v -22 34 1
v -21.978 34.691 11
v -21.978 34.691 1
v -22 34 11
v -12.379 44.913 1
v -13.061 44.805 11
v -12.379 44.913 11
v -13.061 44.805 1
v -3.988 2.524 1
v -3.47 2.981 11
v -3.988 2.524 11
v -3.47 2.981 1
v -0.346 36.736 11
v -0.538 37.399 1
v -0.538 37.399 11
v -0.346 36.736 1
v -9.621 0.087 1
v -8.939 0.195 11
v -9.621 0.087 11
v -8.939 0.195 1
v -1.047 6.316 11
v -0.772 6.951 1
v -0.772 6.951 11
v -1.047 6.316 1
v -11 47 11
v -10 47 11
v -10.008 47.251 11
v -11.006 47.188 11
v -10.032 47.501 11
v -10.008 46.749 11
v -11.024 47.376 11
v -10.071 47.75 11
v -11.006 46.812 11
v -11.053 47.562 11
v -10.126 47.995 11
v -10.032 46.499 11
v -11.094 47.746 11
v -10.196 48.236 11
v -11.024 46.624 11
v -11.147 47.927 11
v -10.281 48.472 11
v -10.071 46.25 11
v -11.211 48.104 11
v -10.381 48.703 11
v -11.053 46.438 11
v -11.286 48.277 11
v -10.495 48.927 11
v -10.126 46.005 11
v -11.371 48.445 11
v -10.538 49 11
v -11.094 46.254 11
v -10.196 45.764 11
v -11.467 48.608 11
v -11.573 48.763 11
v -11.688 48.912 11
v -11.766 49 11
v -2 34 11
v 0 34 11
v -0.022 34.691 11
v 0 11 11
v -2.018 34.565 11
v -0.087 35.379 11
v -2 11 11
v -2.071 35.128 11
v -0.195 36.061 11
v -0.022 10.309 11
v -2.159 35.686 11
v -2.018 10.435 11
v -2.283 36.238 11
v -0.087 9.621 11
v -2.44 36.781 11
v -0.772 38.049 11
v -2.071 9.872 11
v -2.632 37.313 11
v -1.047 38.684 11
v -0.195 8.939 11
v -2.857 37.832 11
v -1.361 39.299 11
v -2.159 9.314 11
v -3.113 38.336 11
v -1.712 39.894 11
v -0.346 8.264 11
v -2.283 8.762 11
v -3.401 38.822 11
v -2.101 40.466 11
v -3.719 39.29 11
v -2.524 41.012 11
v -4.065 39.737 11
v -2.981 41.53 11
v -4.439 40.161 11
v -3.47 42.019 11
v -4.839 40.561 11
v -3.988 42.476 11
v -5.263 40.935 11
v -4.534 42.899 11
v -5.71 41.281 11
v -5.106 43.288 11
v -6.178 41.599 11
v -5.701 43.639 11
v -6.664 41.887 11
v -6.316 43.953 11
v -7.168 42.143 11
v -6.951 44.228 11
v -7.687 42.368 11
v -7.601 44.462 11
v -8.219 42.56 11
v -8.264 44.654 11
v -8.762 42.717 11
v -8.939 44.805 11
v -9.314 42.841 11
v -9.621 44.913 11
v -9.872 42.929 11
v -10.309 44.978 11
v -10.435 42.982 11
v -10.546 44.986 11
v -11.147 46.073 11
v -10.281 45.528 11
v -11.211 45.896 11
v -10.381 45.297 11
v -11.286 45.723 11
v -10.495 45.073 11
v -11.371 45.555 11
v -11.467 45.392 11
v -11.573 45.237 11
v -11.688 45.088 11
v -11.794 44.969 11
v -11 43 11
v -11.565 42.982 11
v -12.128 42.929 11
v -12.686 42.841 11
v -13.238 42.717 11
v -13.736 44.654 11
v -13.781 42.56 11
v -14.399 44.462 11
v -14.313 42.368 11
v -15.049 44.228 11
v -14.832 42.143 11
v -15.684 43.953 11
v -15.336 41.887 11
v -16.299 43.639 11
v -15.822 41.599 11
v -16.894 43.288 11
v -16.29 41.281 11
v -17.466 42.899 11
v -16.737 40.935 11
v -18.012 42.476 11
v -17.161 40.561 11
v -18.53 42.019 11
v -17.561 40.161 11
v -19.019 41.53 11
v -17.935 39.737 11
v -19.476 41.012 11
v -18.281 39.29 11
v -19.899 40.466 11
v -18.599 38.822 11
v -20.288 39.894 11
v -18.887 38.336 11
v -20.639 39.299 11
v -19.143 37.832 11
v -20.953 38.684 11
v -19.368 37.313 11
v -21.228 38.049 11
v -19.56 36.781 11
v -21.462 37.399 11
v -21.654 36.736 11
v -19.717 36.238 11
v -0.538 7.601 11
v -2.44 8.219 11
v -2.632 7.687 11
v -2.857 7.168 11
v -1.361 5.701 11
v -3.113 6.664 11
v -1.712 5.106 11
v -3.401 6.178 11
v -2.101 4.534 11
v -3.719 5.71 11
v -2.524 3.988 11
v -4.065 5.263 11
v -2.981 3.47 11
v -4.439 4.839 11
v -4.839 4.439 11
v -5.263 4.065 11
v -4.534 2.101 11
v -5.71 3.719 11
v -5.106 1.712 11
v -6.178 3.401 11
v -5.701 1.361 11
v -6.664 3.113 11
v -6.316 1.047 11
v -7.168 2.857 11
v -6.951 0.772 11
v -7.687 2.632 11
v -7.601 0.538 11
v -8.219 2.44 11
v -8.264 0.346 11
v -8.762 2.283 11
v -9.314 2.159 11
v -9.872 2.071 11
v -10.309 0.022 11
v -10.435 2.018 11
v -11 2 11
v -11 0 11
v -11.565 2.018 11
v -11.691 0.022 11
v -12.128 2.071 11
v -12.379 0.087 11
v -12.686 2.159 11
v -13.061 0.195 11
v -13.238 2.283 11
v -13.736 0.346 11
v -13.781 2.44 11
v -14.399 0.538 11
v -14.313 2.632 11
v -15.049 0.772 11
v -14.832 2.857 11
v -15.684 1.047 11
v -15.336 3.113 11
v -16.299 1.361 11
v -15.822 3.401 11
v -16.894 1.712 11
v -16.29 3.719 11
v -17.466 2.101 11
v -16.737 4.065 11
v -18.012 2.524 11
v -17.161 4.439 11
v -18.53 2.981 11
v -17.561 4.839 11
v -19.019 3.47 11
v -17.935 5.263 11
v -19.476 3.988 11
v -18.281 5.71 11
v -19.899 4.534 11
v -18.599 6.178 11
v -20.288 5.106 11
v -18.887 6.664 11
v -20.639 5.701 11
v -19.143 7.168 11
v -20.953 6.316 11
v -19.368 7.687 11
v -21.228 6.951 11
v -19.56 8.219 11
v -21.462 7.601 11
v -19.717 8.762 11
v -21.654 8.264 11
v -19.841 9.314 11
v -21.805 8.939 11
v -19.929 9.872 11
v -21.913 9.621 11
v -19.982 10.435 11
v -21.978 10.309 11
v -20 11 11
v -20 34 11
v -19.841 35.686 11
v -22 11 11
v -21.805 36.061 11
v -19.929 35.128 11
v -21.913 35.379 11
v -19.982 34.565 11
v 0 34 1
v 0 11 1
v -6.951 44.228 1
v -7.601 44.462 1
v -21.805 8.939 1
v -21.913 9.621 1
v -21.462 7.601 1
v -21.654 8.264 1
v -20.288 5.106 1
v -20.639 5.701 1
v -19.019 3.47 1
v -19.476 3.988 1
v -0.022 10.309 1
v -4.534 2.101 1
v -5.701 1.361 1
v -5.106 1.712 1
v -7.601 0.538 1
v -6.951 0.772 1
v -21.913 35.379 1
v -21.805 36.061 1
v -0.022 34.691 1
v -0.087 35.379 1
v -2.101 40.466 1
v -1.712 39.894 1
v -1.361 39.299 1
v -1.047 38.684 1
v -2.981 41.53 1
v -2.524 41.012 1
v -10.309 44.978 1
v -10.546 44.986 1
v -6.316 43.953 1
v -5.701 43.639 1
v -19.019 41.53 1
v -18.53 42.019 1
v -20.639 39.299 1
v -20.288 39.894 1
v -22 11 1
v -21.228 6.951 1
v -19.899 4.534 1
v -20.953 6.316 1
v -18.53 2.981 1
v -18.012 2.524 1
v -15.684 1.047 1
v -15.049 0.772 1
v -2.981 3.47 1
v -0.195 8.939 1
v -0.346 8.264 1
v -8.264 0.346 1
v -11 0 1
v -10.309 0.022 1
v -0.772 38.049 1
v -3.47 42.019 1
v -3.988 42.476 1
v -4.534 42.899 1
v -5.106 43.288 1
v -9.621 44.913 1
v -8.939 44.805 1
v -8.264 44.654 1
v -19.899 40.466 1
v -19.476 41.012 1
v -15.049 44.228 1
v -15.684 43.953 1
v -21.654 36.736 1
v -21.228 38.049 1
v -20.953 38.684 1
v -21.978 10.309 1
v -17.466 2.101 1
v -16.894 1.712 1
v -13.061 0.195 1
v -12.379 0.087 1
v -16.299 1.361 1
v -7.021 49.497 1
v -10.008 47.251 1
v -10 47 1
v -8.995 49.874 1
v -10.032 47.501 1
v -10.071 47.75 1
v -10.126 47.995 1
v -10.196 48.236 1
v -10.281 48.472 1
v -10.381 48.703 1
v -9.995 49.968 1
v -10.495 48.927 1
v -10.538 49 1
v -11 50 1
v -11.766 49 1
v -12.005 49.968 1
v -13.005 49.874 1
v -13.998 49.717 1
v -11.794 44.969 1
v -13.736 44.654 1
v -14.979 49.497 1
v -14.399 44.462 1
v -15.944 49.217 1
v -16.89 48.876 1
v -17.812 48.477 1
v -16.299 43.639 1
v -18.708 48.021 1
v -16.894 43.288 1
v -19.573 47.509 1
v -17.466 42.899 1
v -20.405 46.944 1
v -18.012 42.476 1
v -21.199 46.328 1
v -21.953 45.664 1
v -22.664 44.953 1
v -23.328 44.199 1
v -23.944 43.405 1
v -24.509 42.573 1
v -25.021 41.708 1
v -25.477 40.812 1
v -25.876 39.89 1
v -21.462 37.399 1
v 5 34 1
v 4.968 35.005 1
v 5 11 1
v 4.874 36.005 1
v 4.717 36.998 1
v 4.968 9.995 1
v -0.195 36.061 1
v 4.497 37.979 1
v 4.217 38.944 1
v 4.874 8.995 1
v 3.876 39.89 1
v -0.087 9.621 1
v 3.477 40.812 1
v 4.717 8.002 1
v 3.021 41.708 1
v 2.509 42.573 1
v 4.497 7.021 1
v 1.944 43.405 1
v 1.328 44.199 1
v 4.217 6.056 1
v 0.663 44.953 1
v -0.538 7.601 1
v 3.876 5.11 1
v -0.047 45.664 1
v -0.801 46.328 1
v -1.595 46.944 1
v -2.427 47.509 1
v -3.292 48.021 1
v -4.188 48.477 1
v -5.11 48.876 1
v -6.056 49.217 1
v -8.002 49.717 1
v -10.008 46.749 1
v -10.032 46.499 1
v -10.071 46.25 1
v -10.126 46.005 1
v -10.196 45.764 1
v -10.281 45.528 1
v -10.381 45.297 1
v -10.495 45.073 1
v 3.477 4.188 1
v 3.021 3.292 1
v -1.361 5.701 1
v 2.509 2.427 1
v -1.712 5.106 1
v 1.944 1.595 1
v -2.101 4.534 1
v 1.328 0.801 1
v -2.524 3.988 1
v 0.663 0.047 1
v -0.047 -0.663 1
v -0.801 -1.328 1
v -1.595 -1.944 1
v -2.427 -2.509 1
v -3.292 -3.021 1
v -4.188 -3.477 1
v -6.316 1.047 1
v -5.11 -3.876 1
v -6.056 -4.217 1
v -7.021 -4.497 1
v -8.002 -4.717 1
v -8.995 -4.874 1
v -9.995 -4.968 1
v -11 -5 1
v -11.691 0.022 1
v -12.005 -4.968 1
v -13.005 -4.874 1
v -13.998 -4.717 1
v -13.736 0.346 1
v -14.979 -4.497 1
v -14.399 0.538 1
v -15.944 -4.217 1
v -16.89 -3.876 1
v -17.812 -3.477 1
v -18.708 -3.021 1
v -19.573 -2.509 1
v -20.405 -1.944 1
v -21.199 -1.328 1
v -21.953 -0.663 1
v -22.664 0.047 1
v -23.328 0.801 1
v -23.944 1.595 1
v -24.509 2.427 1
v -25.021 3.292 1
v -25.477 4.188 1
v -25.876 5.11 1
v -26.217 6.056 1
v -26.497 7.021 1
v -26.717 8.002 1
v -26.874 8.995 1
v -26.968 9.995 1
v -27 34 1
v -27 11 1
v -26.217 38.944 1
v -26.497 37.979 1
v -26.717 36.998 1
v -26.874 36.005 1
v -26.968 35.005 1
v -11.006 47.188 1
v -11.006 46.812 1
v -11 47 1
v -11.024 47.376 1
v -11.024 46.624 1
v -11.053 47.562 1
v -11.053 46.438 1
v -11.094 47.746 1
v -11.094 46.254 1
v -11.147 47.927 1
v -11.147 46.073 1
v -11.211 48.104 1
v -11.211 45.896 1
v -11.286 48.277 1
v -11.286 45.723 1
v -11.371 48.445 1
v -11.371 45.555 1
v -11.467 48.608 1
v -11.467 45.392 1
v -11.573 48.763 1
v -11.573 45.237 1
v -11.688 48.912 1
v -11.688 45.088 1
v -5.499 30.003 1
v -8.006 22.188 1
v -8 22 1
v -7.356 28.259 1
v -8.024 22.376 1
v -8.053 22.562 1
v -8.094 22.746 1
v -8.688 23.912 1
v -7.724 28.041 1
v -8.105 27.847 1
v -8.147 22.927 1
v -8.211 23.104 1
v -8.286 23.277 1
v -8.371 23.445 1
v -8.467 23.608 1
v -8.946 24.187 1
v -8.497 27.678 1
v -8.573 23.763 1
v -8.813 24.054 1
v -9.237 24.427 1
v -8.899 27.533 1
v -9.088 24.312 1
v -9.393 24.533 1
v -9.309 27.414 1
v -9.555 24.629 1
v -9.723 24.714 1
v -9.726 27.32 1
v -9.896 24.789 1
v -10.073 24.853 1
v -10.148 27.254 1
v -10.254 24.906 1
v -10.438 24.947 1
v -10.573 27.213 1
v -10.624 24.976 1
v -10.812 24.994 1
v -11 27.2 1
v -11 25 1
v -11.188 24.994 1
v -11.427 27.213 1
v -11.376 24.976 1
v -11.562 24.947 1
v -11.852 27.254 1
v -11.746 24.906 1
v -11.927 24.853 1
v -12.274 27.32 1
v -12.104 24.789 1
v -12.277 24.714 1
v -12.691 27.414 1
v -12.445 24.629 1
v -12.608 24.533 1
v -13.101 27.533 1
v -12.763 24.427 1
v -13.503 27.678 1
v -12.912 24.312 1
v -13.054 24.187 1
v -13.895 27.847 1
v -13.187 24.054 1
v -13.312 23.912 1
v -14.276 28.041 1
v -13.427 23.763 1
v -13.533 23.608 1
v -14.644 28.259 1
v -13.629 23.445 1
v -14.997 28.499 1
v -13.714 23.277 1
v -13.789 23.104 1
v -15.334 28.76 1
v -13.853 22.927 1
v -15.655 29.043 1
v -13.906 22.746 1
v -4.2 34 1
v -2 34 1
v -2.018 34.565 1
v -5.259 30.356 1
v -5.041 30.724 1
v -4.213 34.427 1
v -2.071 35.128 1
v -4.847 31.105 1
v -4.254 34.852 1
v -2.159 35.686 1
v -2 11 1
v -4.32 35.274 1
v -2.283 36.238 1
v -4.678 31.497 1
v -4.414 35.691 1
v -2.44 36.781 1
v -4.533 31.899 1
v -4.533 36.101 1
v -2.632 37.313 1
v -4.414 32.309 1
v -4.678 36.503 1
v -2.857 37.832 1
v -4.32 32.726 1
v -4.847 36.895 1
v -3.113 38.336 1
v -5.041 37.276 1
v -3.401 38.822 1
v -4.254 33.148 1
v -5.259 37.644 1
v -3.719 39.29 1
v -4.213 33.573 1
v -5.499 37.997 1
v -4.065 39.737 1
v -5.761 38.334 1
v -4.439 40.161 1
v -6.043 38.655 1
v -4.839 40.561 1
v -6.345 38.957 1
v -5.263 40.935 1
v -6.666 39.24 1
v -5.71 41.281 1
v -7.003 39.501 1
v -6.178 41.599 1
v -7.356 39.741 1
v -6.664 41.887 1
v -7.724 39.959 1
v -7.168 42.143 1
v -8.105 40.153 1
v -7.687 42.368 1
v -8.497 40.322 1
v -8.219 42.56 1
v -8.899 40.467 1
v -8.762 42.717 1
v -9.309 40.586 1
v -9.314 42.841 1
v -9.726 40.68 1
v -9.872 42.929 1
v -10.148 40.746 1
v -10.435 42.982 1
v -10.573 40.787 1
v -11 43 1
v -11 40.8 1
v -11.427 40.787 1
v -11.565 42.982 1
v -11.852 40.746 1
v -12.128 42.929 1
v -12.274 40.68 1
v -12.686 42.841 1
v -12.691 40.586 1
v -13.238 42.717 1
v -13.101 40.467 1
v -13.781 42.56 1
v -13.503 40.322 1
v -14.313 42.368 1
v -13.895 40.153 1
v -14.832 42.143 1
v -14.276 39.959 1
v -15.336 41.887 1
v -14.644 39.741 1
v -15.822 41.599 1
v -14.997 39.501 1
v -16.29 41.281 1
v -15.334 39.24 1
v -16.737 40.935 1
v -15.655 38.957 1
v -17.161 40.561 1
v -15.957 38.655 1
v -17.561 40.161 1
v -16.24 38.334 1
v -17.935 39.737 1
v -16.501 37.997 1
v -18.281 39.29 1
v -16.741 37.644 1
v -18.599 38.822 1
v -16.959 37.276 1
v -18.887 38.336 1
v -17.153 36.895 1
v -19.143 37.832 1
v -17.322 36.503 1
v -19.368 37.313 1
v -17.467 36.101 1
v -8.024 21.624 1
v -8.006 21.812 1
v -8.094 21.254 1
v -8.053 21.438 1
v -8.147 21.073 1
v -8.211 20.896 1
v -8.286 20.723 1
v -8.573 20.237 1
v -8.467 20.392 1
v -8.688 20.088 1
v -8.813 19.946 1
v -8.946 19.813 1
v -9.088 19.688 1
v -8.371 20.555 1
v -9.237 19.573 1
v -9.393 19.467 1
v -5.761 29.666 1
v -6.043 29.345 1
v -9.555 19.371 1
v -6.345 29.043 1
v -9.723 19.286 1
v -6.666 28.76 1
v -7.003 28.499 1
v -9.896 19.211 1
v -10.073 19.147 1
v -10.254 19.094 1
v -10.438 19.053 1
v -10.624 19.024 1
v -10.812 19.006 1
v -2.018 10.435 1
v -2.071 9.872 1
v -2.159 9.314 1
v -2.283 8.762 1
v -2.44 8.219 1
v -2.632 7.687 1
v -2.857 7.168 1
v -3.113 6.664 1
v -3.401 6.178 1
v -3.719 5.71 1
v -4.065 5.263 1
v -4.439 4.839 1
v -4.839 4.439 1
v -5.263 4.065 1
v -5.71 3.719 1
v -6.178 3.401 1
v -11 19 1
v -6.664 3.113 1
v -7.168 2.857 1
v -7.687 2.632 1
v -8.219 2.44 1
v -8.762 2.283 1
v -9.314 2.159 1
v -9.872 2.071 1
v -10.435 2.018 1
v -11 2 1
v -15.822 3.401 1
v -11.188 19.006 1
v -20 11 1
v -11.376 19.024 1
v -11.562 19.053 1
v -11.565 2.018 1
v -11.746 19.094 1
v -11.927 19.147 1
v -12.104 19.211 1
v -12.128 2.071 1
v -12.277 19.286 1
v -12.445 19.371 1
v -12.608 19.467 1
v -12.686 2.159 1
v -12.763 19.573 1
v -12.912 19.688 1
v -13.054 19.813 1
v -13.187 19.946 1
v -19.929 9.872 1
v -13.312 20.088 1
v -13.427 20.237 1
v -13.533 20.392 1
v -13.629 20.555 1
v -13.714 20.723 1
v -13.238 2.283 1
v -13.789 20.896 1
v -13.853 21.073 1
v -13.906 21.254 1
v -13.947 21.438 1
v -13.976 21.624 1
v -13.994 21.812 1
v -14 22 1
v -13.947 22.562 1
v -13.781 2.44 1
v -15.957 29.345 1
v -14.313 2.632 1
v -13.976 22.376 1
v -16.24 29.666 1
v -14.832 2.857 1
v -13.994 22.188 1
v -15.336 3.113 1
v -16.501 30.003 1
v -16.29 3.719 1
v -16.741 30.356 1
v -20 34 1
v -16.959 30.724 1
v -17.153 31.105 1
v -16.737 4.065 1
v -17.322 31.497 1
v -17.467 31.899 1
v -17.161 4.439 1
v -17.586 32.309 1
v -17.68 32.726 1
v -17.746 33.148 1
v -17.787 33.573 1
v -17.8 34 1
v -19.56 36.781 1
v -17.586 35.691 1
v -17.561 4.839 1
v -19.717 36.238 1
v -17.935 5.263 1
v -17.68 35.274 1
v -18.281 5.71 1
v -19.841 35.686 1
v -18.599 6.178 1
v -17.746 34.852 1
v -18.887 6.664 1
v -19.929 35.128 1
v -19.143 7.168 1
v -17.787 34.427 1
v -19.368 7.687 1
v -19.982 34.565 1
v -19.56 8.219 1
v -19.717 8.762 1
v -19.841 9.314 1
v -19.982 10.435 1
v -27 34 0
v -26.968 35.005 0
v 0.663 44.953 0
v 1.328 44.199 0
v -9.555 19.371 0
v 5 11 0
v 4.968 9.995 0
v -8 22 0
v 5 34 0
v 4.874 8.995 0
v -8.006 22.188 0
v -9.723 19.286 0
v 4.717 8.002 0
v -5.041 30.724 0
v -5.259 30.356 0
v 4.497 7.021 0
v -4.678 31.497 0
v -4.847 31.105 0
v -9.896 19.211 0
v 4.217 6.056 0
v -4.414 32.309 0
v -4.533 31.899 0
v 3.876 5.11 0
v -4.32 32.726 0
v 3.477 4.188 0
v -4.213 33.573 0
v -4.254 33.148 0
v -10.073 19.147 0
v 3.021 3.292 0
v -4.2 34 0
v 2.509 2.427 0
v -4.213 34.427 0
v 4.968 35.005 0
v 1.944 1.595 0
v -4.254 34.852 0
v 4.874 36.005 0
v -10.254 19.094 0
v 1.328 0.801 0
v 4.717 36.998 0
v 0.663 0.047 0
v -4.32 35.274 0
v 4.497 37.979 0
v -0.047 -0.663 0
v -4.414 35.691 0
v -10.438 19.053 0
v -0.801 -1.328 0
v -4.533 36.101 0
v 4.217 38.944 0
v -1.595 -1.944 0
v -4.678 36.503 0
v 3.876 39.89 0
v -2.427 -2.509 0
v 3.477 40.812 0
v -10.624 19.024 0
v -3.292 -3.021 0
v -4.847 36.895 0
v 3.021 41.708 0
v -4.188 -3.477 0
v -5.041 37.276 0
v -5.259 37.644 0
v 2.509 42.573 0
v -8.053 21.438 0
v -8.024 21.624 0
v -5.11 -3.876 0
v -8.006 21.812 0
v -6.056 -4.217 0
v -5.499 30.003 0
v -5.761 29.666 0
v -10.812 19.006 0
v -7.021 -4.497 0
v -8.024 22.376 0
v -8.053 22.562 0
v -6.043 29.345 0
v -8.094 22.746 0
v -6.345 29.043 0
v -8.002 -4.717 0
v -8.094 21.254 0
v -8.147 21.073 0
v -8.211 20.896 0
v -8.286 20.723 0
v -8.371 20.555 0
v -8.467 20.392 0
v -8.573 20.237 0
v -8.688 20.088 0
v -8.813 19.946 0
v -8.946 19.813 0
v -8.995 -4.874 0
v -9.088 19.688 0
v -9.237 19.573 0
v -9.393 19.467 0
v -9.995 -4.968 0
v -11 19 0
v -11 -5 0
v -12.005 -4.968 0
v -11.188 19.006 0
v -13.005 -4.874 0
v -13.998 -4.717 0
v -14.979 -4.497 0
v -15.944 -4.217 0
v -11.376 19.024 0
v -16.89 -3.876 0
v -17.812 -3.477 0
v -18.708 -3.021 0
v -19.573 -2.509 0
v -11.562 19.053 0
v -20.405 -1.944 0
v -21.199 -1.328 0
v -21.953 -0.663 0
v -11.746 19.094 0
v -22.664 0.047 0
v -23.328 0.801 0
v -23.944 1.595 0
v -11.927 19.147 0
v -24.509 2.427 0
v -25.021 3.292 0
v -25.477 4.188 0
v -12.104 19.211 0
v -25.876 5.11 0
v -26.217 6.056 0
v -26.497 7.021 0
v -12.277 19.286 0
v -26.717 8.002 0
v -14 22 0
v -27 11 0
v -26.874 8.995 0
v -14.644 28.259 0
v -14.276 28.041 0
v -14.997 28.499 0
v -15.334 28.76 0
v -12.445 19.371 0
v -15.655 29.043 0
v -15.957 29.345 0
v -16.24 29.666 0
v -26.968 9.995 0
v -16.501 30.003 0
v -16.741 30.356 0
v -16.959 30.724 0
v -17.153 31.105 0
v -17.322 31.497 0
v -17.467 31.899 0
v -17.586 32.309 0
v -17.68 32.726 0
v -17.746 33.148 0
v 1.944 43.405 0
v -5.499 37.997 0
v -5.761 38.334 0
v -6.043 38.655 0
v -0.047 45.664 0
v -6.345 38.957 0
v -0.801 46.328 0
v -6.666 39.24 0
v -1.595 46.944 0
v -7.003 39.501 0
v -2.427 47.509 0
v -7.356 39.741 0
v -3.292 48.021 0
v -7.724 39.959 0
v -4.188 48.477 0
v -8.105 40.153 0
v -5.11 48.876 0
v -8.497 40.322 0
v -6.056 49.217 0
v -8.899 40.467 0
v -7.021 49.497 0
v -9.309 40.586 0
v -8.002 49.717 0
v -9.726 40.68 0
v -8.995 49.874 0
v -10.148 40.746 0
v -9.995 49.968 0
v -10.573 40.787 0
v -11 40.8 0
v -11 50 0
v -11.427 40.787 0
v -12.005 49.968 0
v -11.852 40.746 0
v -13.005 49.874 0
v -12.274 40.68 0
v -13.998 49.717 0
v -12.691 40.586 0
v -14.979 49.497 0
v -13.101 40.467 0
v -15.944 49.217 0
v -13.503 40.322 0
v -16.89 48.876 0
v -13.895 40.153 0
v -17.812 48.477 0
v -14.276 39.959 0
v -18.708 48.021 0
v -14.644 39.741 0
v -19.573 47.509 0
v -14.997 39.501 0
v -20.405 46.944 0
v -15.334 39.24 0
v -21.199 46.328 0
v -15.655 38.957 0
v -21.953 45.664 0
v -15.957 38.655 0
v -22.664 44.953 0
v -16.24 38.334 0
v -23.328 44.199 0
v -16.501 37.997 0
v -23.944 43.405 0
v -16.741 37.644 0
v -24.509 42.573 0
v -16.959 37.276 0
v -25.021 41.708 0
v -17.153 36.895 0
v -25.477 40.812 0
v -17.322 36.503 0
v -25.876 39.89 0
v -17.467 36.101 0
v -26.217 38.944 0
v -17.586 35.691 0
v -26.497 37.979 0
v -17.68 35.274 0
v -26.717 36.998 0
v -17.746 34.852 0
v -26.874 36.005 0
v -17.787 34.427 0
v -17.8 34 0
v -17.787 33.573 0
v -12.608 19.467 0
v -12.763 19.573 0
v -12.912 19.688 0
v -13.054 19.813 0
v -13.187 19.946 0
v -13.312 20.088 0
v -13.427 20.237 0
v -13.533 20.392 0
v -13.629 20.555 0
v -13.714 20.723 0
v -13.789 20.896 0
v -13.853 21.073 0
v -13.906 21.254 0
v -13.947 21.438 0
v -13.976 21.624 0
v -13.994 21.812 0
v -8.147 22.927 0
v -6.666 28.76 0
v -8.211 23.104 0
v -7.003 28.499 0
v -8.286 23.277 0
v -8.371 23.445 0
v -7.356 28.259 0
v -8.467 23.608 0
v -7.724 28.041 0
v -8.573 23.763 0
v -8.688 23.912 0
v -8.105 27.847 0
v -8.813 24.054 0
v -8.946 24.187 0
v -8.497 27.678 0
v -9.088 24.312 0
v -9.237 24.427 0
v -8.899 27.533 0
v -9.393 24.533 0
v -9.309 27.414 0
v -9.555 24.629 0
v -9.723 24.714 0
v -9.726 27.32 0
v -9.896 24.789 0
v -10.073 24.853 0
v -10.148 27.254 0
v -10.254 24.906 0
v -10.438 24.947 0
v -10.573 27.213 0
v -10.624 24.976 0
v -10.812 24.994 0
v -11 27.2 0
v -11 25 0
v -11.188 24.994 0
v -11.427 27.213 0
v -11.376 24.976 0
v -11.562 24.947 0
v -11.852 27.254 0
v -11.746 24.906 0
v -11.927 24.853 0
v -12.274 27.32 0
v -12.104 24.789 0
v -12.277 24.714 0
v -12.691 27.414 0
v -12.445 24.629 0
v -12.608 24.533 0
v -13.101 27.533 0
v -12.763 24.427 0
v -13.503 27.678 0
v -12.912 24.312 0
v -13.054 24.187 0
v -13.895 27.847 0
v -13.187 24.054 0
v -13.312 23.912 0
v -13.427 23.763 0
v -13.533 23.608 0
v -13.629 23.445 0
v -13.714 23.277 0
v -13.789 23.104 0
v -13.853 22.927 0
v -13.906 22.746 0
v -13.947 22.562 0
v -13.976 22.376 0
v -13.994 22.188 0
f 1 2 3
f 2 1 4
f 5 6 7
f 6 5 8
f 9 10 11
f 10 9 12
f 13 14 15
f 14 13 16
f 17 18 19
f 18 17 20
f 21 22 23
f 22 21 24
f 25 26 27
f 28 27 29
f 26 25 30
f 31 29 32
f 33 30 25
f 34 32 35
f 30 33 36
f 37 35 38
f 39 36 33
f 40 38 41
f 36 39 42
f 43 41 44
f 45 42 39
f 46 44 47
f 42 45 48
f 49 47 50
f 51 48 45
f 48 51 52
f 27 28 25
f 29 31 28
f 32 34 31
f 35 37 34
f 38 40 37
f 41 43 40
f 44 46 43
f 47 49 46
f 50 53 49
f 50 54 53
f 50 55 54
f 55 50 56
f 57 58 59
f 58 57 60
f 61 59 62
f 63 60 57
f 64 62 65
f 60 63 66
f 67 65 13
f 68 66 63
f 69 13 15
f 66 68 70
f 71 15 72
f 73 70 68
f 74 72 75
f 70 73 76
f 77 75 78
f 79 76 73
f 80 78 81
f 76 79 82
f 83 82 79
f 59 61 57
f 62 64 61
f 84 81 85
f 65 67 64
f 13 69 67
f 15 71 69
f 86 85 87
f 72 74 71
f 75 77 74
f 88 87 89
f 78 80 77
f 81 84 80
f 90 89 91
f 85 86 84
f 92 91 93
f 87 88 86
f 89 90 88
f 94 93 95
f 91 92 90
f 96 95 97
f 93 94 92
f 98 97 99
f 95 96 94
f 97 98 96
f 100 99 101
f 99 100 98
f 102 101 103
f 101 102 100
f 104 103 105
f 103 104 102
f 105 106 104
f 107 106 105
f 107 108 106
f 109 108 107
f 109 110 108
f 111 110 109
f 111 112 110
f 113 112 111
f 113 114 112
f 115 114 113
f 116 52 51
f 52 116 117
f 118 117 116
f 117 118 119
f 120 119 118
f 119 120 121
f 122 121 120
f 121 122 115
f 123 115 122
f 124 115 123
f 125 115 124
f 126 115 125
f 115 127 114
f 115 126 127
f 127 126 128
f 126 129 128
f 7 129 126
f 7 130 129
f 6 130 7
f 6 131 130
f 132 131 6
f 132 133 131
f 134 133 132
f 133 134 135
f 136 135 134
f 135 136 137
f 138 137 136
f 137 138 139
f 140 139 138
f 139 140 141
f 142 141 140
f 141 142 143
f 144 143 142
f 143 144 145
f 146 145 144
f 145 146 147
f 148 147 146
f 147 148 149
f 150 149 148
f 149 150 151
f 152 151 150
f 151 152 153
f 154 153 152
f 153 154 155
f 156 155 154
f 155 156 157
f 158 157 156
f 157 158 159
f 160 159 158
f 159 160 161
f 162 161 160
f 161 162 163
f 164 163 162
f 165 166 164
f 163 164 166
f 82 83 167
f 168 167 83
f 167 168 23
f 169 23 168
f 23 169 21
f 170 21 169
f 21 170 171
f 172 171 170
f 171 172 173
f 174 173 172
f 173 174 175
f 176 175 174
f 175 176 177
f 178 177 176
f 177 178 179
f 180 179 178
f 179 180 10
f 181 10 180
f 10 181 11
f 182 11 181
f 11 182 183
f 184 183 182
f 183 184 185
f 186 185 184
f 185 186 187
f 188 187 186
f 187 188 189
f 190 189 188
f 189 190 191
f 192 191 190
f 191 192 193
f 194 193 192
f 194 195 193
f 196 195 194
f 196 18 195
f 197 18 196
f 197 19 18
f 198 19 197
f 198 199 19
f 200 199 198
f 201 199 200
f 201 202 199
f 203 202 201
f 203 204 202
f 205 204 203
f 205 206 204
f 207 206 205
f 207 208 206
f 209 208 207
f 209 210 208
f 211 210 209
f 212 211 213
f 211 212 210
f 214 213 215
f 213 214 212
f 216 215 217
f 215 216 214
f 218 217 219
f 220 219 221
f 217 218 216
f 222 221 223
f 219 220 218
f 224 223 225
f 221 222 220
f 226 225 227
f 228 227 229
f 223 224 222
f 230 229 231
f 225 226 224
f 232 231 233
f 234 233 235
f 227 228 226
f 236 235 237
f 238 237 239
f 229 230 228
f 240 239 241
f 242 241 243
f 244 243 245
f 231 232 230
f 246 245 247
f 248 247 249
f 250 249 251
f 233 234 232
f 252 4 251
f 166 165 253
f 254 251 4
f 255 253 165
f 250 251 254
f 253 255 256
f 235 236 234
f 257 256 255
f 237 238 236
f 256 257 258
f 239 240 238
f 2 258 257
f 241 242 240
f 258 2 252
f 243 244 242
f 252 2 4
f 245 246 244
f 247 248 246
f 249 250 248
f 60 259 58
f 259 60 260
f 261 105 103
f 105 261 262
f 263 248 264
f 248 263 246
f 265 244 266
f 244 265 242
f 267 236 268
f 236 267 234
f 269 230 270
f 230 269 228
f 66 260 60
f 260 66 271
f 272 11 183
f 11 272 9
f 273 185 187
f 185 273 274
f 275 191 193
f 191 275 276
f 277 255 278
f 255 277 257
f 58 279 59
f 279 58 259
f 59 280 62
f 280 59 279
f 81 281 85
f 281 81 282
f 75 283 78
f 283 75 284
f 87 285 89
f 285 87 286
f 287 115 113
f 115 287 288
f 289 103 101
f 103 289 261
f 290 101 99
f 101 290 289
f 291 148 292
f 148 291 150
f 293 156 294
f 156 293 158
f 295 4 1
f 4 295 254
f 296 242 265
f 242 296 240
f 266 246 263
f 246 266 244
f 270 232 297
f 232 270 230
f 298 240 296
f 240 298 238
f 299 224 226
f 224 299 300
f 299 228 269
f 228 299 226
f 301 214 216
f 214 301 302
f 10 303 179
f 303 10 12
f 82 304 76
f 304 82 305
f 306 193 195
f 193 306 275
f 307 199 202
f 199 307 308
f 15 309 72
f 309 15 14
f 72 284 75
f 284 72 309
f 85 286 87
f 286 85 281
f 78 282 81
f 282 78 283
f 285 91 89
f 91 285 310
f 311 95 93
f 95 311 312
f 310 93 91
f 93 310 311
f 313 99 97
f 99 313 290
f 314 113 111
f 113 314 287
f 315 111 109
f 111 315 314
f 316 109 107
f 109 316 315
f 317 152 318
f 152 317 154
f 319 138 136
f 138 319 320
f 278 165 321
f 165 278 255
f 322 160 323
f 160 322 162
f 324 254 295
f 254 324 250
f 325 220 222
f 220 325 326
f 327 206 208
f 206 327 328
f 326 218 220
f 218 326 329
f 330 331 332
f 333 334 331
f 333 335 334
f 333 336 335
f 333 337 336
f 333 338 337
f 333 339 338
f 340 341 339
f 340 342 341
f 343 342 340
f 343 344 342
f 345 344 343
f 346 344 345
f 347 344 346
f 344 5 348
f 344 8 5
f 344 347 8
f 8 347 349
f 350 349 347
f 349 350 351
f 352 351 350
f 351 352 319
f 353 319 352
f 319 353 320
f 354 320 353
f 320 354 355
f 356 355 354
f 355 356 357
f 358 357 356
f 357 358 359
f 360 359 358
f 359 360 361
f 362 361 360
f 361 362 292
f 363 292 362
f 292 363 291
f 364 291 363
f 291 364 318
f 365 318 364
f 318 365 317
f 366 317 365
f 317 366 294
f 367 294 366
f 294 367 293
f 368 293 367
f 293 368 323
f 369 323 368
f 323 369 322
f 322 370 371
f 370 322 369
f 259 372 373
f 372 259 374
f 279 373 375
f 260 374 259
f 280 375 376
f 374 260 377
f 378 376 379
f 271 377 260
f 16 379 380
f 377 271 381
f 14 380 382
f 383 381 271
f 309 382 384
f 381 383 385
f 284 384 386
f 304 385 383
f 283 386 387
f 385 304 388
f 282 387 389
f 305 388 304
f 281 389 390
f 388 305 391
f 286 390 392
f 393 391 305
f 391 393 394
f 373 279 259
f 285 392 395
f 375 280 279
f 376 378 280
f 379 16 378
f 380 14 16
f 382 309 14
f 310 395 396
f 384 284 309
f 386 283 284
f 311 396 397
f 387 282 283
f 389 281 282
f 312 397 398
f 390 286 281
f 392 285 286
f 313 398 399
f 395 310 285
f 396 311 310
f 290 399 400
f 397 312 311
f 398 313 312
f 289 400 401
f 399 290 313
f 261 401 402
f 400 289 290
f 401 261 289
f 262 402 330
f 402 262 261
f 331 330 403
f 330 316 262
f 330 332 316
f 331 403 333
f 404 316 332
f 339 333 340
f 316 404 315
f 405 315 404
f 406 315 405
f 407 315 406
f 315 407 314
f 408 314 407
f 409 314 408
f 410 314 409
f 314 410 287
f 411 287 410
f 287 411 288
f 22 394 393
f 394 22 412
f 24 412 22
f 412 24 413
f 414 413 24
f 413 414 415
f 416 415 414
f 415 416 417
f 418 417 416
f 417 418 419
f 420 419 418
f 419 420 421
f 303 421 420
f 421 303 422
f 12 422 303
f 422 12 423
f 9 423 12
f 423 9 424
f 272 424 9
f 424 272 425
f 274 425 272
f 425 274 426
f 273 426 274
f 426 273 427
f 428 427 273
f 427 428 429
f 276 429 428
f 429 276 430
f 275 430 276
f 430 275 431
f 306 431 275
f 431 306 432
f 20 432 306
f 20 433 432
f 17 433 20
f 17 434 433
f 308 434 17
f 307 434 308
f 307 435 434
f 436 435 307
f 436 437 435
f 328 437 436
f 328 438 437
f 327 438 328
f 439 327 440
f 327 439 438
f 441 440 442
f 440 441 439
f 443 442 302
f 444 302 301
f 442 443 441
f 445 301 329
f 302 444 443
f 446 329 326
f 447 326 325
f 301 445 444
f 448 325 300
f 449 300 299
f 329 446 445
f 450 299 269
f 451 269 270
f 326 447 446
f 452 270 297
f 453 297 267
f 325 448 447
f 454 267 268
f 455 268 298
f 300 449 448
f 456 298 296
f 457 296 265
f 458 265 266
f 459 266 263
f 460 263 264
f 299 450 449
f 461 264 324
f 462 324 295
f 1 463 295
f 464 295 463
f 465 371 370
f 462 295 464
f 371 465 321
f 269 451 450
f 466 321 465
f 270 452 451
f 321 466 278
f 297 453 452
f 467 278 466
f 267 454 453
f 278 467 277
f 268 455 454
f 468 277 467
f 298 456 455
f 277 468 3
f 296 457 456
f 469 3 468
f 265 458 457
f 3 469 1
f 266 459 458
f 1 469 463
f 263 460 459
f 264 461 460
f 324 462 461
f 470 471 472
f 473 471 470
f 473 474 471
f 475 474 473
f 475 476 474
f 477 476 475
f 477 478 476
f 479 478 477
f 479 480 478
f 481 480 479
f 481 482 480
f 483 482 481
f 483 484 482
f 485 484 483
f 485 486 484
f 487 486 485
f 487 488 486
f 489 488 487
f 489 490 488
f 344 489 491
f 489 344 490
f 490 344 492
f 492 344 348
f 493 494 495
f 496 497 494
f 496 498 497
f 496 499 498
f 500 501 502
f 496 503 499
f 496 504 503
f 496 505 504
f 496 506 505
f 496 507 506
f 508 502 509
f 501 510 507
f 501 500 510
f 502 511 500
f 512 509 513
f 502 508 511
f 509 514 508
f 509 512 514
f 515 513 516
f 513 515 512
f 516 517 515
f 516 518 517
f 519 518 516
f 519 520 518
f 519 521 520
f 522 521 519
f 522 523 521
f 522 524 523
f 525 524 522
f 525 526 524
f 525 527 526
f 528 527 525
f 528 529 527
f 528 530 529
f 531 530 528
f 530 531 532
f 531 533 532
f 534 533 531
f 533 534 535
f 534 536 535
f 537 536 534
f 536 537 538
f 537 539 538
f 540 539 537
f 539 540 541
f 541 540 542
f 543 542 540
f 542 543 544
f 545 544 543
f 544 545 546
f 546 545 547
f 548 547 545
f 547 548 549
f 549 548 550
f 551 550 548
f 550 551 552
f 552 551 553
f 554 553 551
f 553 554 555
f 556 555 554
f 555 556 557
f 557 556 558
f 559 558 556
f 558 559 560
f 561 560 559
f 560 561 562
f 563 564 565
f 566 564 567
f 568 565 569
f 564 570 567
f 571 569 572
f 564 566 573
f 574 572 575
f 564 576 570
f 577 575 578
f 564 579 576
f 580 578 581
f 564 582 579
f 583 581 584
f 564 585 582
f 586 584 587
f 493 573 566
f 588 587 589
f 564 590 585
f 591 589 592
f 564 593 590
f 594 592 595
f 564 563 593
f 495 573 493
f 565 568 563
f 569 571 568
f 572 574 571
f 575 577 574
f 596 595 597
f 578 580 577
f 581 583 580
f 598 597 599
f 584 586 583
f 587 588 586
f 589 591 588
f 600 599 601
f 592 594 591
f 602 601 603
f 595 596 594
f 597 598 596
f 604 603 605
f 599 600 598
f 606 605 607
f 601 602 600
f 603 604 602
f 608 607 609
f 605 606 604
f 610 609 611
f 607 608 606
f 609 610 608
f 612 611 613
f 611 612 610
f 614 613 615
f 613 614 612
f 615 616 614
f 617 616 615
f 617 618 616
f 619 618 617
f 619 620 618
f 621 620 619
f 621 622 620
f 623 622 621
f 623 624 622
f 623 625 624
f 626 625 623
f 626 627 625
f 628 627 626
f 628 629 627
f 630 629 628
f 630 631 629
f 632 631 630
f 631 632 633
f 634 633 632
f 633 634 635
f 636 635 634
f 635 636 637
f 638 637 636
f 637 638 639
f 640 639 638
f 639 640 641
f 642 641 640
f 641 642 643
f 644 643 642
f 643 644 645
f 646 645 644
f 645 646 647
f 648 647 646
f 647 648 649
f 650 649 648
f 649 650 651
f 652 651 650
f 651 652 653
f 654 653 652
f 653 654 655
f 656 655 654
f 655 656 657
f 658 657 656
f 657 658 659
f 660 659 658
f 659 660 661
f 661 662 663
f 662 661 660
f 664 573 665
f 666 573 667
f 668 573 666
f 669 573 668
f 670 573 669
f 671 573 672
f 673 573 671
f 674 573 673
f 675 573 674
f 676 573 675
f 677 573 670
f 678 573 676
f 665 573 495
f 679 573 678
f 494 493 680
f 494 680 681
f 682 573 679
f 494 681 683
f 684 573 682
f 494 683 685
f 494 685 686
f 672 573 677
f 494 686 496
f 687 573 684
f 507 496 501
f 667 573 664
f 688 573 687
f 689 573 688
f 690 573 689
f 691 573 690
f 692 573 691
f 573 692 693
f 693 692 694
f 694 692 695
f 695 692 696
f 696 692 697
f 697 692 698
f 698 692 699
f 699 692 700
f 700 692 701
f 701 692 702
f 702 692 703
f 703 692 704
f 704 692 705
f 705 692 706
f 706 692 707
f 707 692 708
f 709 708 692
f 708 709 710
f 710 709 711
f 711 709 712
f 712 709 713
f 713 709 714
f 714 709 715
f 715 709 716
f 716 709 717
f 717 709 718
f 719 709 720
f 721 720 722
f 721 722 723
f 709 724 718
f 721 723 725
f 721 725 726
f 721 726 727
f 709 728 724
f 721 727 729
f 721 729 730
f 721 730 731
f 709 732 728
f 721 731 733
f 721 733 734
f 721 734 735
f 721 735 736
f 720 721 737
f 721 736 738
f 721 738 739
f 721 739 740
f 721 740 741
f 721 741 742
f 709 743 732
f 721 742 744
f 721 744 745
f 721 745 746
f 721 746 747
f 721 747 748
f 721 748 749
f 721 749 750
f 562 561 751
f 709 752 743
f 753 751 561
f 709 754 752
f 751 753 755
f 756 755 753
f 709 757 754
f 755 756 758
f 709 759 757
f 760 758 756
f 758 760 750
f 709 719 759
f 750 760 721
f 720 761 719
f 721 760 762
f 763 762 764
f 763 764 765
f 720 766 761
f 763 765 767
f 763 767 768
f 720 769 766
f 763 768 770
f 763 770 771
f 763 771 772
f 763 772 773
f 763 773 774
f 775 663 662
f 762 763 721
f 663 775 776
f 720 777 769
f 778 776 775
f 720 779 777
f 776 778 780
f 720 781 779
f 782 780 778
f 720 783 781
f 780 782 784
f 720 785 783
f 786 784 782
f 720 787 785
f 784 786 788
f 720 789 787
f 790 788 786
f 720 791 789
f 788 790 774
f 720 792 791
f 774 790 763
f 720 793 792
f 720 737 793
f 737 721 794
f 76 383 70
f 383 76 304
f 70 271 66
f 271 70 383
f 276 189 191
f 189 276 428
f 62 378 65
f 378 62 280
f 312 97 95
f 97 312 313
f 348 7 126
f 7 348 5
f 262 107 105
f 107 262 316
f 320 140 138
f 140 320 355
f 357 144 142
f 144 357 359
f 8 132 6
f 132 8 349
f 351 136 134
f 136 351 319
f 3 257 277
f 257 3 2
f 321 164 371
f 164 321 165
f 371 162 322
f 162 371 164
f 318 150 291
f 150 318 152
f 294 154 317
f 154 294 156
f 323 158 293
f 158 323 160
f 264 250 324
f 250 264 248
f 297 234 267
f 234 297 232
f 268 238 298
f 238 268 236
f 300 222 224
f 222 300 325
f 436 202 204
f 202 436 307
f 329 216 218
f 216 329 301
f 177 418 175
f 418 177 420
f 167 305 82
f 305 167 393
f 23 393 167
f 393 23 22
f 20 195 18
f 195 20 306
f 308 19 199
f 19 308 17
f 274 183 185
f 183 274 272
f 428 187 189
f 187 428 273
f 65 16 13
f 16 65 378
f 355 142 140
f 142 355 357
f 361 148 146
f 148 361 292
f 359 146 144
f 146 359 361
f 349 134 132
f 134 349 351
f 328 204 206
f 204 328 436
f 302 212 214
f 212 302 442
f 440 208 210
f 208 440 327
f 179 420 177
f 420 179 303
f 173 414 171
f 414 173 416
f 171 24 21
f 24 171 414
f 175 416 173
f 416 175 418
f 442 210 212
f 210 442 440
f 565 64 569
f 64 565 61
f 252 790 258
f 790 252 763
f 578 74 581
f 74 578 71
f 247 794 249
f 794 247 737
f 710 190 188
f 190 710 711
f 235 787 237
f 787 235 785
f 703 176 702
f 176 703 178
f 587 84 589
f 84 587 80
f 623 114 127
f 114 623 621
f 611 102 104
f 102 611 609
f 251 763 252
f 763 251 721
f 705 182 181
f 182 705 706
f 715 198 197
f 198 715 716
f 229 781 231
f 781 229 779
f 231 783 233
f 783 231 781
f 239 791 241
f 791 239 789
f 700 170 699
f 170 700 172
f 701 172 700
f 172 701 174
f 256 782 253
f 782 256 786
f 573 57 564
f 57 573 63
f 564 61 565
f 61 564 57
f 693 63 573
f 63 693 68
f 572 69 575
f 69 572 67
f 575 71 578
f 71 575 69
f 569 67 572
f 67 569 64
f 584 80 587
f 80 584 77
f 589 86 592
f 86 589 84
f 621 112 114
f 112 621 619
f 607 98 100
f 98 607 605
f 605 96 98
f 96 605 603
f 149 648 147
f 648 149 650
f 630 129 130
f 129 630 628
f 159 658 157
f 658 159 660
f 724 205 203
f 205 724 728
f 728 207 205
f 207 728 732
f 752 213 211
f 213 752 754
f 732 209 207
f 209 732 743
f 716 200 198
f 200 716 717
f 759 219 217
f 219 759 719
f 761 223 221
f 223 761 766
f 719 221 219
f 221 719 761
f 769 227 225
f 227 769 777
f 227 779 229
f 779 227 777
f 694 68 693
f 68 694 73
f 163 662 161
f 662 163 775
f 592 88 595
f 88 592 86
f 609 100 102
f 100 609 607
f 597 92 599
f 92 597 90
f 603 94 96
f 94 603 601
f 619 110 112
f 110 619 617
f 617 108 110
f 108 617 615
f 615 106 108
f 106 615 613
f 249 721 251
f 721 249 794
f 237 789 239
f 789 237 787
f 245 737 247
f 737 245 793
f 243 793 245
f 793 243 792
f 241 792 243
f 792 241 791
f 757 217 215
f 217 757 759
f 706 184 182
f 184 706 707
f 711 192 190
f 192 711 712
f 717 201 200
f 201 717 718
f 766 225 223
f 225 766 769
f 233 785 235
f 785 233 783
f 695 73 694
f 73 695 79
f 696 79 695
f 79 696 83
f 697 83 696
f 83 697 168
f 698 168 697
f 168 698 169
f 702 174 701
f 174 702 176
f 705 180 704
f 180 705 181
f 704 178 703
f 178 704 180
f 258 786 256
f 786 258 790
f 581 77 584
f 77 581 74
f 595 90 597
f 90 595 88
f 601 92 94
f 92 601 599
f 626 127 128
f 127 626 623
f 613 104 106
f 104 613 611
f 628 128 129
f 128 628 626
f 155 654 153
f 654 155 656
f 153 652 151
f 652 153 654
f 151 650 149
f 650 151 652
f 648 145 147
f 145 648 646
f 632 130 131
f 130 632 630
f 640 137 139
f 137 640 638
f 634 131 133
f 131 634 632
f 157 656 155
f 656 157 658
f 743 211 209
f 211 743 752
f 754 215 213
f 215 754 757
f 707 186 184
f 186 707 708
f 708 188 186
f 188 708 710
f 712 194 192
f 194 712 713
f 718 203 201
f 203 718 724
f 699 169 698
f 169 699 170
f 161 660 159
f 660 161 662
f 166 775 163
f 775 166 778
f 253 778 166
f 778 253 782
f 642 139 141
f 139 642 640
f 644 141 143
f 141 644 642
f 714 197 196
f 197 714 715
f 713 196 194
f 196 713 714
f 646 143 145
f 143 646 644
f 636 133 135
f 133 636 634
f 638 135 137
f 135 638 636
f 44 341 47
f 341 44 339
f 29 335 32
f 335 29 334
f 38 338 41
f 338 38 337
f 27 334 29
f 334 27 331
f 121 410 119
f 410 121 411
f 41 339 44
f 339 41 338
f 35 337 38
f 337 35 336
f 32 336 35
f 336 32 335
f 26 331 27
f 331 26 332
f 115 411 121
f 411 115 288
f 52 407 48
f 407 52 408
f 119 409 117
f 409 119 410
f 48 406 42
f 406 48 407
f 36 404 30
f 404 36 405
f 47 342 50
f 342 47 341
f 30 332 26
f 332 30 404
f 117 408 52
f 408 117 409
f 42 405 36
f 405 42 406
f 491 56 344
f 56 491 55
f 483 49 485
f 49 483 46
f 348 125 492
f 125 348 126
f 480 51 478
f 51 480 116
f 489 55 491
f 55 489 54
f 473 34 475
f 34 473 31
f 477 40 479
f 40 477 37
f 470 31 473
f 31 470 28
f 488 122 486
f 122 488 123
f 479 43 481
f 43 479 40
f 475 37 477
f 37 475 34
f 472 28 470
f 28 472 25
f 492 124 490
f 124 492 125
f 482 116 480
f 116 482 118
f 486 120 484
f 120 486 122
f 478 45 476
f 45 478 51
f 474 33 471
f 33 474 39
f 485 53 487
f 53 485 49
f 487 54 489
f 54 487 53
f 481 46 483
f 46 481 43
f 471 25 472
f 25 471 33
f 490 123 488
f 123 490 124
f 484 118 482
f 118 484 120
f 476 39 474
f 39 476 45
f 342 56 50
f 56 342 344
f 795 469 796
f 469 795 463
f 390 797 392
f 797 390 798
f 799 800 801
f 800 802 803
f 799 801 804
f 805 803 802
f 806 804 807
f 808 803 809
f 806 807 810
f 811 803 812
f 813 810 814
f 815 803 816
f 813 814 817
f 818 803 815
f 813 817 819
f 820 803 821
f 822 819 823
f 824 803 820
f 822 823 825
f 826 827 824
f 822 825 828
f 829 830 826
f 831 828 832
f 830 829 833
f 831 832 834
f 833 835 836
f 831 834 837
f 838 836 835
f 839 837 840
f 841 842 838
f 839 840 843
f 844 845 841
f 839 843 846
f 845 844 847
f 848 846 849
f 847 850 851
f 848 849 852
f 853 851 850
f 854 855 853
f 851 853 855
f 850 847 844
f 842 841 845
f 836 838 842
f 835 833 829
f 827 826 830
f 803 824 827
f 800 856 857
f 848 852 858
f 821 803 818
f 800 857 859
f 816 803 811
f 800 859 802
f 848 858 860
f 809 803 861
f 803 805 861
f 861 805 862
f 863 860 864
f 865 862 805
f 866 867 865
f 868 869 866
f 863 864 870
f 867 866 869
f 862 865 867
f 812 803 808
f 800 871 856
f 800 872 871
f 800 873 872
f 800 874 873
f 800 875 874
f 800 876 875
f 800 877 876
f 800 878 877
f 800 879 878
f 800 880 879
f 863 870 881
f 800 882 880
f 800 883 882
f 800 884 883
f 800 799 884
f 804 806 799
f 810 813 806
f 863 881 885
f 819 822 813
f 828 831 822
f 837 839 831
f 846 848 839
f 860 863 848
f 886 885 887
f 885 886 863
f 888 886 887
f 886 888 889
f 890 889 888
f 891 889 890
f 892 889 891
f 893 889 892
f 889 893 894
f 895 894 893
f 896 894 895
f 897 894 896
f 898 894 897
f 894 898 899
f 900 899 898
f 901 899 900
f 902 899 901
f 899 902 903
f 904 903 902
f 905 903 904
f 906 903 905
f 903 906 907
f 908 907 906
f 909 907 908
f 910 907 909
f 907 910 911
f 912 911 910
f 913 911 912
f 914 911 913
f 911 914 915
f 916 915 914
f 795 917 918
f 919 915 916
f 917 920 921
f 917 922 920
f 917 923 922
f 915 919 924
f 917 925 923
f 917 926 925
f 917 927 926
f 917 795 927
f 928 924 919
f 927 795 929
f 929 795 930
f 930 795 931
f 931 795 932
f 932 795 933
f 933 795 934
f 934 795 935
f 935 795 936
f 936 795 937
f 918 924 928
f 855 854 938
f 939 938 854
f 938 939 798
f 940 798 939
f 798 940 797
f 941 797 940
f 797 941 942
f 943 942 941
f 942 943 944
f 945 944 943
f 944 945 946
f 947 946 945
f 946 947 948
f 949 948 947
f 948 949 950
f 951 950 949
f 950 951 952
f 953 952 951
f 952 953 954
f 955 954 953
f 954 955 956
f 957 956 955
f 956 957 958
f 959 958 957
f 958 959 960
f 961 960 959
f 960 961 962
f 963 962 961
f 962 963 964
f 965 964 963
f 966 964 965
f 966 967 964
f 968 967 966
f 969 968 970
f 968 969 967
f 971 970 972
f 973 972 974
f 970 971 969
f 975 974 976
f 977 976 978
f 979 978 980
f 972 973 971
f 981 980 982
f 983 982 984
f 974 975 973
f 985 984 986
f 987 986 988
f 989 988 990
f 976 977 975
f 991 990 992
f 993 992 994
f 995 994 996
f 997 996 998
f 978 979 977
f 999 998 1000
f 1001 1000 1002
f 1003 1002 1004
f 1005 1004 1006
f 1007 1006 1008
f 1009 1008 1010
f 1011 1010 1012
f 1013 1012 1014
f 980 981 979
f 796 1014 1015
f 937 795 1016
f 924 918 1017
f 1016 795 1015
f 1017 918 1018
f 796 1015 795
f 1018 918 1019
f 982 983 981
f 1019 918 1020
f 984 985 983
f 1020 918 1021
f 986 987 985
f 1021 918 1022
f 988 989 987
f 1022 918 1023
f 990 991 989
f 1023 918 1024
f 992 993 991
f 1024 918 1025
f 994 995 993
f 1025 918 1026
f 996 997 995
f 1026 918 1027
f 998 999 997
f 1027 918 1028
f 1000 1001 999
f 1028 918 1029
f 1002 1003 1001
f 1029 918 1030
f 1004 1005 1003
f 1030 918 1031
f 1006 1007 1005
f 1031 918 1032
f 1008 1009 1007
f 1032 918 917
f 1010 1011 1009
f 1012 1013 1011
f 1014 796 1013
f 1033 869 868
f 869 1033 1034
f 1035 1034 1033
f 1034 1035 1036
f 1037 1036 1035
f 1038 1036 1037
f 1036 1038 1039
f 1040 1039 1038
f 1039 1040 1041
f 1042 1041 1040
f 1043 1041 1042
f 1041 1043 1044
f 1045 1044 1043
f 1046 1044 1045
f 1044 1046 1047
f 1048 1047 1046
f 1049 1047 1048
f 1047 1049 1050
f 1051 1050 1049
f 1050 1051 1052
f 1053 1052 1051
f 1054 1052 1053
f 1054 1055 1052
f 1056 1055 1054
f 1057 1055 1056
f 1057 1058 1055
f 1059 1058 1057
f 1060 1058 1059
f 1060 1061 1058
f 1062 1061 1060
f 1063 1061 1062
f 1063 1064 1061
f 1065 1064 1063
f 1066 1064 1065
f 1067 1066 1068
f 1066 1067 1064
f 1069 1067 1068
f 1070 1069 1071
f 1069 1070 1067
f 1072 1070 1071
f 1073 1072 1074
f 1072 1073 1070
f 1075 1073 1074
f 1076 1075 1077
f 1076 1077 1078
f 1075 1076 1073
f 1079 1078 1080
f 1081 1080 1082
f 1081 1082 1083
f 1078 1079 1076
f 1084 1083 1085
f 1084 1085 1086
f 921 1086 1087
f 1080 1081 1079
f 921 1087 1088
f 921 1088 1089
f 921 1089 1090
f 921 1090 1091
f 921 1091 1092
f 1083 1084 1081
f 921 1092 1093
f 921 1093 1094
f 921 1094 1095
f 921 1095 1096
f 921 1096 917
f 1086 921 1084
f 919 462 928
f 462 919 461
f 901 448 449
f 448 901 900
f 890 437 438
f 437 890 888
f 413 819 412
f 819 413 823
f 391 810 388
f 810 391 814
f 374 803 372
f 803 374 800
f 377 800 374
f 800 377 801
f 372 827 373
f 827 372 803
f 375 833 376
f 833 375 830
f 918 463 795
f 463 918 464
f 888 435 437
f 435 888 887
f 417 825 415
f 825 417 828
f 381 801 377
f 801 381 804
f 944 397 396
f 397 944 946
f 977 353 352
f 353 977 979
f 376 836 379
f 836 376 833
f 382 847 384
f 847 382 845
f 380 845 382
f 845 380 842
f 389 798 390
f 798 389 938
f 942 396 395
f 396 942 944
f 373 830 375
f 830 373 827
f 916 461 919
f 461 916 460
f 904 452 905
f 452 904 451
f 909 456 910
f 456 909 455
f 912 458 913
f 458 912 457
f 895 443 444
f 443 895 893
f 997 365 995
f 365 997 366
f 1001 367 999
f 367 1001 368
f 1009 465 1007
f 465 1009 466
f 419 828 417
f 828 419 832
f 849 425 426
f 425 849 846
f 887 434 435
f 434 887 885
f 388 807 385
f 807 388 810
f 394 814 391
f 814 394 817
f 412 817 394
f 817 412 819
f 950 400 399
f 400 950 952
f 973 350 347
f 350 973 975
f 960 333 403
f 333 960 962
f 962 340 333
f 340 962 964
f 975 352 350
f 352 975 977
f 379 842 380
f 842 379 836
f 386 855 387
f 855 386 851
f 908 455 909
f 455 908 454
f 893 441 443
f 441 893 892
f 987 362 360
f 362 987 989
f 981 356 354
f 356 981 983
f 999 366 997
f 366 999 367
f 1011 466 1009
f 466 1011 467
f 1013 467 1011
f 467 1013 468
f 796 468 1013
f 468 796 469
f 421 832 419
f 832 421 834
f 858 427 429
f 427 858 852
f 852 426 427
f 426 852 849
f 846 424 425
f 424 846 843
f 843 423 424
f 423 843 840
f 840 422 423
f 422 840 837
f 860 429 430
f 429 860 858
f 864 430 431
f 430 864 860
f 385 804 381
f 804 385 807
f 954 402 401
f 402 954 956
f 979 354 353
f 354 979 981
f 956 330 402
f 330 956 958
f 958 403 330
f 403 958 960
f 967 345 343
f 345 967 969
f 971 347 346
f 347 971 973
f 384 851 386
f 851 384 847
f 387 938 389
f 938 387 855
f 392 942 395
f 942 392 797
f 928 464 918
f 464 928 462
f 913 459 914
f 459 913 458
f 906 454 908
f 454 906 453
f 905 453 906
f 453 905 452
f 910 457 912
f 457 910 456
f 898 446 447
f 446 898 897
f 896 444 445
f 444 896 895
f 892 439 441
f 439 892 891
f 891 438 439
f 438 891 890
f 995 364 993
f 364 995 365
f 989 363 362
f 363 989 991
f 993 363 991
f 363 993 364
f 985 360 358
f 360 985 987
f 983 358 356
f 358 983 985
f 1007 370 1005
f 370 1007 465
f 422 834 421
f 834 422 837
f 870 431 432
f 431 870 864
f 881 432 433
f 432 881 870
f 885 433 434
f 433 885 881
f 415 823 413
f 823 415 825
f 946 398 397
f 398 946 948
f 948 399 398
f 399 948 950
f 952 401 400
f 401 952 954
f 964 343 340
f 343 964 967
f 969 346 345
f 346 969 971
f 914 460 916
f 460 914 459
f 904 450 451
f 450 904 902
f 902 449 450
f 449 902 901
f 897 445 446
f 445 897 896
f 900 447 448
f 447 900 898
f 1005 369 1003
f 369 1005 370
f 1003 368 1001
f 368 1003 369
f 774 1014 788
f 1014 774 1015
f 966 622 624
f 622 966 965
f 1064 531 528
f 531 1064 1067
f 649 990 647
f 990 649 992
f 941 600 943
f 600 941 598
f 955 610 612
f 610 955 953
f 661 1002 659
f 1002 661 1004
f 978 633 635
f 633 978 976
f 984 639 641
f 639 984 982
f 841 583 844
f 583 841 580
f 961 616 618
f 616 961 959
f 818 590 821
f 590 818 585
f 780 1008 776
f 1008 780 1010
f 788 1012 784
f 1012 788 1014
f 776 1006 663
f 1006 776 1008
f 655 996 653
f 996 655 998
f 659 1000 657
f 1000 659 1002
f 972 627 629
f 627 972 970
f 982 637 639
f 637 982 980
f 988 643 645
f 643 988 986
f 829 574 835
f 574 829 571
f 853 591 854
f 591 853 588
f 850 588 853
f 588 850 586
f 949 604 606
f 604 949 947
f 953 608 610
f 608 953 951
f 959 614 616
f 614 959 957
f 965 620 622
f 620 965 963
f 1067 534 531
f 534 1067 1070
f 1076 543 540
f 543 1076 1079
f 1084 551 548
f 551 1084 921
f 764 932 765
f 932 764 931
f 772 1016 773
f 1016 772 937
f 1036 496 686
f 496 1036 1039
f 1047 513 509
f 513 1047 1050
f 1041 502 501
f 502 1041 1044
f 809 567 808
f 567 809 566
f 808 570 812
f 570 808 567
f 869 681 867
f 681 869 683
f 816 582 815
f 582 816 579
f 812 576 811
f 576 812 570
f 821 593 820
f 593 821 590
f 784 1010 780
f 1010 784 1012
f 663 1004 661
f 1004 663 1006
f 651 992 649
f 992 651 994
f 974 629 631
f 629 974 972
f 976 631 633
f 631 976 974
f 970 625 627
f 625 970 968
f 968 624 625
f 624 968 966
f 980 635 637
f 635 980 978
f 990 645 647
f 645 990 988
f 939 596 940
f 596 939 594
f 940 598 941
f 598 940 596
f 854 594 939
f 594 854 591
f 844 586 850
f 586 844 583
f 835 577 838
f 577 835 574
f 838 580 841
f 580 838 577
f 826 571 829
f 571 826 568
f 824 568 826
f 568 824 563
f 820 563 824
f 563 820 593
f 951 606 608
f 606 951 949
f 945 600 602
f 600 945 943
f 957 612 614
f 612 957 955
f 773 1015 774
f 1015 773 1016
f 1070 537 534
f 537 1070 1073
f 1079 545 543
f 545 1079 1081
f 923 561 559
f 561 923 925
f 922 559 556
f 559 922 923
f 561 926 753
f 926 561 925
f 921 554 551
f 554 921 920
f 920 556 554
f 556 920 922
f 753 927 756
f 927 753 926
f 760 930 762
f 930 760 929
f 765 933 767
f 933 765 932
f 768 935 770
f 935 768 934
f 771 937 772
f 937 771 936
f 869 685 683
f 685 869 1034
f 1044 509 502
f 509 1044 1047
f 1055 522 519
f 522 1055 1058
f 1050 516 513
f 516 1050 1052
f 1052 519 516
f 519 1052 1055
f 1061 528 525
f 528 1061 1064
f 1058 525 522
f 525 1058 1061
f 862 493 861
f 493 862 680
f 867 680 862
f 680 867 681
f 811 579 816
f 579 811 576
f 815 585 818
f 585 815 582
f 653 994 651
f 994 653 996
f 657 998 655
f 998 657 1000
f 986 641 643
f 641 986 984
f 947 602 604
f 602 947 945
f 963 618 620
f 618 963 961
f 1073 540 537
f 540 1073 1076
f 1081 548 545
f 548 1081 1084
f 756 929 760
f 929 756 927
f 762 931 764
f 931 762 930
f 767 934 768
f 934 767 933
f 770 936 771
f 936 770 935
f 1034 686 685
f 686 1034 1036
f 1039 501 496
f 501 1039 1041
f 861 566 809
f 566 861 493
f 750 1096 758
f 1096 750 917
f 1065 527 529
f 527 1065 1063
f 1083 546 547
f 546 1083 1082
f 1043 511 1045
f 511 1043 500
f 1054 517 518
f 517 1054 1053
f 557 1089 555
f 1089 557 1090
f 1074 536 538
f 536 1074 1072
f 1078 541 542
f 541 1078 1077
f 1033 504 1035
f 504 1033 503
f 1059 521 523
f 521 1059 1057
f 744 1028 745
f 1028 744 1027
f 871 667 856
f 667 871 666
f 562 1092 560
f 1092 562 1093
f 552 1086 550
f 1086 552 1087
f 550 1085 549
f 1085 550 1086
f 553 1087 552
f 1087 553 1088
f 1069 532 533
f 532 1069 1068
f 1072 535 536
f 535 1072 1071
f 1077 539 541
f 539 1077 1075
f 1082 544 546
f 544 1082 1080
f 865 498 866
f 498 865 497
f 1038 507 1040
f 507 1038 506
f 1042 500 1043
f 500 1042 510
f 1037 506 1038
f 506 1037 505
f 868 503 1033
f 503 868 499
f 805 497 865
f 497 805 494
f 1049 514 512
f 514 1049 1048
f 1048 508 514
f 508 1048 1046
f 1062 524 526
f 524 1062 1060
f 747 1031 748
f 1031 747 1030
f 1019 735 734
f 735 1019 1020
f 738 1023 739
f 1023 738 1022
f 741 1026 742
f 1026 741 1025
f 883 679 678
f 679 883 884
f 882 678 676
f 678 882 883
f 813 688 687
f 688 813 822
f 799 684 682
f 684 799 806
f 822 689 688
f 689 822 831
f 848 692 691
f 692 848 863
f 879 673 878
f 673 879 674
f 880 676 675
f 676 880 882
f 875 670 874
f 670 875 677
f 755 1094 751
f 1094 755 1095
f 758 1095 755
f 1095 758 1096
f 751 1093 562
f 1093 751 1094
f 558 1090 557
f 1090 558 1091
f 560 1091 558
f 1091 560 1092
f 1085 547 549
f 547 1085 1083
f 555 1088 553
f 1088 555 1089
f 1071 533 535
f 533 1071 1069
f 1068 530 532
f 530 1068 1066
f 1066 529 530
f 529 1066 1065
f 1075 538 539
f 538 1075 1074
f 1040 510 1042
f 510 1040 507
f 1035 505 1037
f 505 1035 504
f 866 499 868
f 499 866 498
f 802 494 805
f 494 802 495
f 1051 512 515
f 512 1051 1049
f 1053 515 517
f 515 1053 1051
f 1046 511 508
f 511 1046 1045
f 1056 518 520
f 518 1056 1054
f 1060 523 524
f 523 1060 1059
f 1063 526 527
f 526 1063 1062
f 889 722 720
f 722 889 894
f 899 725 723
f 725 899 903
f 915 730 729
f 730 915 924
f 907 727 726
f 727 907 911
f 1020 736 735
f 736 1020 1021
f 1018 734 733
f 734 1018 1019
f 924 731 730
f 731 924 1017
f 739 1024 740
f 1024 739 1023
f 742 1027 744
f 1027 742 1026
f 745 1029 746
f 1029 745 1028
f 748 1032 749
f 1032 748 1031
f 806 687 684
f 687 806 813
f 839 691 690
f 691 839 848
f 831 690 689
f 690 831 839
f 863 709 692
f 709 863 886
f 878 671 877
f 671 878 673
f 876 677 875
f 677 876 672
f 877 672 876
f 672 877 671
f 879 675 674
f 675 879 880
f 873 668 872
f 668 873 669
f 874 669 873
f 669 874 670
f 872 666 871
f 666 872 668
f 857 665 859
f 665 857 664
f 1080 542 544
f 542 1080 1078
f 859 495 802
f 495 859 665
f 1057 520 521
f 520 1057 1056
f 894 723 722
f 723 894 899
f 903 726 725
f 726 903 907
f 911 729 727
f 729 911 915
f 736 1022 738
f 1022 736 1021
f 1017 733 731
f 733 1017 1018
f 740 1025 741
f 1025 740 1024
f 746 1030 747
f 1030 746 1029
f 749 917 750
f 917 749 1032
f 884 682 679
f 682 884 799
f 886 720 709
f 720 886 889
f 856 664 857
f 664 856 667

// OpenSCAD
// whoops
scale([-1,1,1]) {
    // walls
    difference() {
        hull() {
            translate([11, 11, 1]) cylinder(r=11, h=10, $fn=100);
            translate([11, 34, 1]) cylinder(r=11, h=10, $fn=100);
        }
        hull() {
            translate([11, 11, 0]) cylinder(r=9, h=12, $fn=100);
            translate([11, 34, 0]) cylinder(r=9, h=12, $fn=100);
        }
    }

    // notch
    difference() {
        translate([14, 47, 1]) cylinder(r=4, h=10, $fn=100);
        translate([14, 47, 0]) cylinder(r=3, h=30, $fn=100);
        translate([9,49,0]) cube(size=[10,10,30]);
        translate([14,41,0]) cube(size=[10,10,30]);
    }

    // baseplate
    difference() {
        hull() {
            translate([11, 11, 0]) cylinder(r=16, h=1, $fn=100);
            translate([11, 34, 0]) cylinder(r=16, h=1, $fn=100);
        }
        
        // hole for DC in
        translate([11, 34, -1]) cylinder(r=6.8, h=30, $fn=100);
        
        // hole for tumbler
        translate([11, 22, -1]) cylinder(r=3.0, h=30, $fn=100);
    }
}
